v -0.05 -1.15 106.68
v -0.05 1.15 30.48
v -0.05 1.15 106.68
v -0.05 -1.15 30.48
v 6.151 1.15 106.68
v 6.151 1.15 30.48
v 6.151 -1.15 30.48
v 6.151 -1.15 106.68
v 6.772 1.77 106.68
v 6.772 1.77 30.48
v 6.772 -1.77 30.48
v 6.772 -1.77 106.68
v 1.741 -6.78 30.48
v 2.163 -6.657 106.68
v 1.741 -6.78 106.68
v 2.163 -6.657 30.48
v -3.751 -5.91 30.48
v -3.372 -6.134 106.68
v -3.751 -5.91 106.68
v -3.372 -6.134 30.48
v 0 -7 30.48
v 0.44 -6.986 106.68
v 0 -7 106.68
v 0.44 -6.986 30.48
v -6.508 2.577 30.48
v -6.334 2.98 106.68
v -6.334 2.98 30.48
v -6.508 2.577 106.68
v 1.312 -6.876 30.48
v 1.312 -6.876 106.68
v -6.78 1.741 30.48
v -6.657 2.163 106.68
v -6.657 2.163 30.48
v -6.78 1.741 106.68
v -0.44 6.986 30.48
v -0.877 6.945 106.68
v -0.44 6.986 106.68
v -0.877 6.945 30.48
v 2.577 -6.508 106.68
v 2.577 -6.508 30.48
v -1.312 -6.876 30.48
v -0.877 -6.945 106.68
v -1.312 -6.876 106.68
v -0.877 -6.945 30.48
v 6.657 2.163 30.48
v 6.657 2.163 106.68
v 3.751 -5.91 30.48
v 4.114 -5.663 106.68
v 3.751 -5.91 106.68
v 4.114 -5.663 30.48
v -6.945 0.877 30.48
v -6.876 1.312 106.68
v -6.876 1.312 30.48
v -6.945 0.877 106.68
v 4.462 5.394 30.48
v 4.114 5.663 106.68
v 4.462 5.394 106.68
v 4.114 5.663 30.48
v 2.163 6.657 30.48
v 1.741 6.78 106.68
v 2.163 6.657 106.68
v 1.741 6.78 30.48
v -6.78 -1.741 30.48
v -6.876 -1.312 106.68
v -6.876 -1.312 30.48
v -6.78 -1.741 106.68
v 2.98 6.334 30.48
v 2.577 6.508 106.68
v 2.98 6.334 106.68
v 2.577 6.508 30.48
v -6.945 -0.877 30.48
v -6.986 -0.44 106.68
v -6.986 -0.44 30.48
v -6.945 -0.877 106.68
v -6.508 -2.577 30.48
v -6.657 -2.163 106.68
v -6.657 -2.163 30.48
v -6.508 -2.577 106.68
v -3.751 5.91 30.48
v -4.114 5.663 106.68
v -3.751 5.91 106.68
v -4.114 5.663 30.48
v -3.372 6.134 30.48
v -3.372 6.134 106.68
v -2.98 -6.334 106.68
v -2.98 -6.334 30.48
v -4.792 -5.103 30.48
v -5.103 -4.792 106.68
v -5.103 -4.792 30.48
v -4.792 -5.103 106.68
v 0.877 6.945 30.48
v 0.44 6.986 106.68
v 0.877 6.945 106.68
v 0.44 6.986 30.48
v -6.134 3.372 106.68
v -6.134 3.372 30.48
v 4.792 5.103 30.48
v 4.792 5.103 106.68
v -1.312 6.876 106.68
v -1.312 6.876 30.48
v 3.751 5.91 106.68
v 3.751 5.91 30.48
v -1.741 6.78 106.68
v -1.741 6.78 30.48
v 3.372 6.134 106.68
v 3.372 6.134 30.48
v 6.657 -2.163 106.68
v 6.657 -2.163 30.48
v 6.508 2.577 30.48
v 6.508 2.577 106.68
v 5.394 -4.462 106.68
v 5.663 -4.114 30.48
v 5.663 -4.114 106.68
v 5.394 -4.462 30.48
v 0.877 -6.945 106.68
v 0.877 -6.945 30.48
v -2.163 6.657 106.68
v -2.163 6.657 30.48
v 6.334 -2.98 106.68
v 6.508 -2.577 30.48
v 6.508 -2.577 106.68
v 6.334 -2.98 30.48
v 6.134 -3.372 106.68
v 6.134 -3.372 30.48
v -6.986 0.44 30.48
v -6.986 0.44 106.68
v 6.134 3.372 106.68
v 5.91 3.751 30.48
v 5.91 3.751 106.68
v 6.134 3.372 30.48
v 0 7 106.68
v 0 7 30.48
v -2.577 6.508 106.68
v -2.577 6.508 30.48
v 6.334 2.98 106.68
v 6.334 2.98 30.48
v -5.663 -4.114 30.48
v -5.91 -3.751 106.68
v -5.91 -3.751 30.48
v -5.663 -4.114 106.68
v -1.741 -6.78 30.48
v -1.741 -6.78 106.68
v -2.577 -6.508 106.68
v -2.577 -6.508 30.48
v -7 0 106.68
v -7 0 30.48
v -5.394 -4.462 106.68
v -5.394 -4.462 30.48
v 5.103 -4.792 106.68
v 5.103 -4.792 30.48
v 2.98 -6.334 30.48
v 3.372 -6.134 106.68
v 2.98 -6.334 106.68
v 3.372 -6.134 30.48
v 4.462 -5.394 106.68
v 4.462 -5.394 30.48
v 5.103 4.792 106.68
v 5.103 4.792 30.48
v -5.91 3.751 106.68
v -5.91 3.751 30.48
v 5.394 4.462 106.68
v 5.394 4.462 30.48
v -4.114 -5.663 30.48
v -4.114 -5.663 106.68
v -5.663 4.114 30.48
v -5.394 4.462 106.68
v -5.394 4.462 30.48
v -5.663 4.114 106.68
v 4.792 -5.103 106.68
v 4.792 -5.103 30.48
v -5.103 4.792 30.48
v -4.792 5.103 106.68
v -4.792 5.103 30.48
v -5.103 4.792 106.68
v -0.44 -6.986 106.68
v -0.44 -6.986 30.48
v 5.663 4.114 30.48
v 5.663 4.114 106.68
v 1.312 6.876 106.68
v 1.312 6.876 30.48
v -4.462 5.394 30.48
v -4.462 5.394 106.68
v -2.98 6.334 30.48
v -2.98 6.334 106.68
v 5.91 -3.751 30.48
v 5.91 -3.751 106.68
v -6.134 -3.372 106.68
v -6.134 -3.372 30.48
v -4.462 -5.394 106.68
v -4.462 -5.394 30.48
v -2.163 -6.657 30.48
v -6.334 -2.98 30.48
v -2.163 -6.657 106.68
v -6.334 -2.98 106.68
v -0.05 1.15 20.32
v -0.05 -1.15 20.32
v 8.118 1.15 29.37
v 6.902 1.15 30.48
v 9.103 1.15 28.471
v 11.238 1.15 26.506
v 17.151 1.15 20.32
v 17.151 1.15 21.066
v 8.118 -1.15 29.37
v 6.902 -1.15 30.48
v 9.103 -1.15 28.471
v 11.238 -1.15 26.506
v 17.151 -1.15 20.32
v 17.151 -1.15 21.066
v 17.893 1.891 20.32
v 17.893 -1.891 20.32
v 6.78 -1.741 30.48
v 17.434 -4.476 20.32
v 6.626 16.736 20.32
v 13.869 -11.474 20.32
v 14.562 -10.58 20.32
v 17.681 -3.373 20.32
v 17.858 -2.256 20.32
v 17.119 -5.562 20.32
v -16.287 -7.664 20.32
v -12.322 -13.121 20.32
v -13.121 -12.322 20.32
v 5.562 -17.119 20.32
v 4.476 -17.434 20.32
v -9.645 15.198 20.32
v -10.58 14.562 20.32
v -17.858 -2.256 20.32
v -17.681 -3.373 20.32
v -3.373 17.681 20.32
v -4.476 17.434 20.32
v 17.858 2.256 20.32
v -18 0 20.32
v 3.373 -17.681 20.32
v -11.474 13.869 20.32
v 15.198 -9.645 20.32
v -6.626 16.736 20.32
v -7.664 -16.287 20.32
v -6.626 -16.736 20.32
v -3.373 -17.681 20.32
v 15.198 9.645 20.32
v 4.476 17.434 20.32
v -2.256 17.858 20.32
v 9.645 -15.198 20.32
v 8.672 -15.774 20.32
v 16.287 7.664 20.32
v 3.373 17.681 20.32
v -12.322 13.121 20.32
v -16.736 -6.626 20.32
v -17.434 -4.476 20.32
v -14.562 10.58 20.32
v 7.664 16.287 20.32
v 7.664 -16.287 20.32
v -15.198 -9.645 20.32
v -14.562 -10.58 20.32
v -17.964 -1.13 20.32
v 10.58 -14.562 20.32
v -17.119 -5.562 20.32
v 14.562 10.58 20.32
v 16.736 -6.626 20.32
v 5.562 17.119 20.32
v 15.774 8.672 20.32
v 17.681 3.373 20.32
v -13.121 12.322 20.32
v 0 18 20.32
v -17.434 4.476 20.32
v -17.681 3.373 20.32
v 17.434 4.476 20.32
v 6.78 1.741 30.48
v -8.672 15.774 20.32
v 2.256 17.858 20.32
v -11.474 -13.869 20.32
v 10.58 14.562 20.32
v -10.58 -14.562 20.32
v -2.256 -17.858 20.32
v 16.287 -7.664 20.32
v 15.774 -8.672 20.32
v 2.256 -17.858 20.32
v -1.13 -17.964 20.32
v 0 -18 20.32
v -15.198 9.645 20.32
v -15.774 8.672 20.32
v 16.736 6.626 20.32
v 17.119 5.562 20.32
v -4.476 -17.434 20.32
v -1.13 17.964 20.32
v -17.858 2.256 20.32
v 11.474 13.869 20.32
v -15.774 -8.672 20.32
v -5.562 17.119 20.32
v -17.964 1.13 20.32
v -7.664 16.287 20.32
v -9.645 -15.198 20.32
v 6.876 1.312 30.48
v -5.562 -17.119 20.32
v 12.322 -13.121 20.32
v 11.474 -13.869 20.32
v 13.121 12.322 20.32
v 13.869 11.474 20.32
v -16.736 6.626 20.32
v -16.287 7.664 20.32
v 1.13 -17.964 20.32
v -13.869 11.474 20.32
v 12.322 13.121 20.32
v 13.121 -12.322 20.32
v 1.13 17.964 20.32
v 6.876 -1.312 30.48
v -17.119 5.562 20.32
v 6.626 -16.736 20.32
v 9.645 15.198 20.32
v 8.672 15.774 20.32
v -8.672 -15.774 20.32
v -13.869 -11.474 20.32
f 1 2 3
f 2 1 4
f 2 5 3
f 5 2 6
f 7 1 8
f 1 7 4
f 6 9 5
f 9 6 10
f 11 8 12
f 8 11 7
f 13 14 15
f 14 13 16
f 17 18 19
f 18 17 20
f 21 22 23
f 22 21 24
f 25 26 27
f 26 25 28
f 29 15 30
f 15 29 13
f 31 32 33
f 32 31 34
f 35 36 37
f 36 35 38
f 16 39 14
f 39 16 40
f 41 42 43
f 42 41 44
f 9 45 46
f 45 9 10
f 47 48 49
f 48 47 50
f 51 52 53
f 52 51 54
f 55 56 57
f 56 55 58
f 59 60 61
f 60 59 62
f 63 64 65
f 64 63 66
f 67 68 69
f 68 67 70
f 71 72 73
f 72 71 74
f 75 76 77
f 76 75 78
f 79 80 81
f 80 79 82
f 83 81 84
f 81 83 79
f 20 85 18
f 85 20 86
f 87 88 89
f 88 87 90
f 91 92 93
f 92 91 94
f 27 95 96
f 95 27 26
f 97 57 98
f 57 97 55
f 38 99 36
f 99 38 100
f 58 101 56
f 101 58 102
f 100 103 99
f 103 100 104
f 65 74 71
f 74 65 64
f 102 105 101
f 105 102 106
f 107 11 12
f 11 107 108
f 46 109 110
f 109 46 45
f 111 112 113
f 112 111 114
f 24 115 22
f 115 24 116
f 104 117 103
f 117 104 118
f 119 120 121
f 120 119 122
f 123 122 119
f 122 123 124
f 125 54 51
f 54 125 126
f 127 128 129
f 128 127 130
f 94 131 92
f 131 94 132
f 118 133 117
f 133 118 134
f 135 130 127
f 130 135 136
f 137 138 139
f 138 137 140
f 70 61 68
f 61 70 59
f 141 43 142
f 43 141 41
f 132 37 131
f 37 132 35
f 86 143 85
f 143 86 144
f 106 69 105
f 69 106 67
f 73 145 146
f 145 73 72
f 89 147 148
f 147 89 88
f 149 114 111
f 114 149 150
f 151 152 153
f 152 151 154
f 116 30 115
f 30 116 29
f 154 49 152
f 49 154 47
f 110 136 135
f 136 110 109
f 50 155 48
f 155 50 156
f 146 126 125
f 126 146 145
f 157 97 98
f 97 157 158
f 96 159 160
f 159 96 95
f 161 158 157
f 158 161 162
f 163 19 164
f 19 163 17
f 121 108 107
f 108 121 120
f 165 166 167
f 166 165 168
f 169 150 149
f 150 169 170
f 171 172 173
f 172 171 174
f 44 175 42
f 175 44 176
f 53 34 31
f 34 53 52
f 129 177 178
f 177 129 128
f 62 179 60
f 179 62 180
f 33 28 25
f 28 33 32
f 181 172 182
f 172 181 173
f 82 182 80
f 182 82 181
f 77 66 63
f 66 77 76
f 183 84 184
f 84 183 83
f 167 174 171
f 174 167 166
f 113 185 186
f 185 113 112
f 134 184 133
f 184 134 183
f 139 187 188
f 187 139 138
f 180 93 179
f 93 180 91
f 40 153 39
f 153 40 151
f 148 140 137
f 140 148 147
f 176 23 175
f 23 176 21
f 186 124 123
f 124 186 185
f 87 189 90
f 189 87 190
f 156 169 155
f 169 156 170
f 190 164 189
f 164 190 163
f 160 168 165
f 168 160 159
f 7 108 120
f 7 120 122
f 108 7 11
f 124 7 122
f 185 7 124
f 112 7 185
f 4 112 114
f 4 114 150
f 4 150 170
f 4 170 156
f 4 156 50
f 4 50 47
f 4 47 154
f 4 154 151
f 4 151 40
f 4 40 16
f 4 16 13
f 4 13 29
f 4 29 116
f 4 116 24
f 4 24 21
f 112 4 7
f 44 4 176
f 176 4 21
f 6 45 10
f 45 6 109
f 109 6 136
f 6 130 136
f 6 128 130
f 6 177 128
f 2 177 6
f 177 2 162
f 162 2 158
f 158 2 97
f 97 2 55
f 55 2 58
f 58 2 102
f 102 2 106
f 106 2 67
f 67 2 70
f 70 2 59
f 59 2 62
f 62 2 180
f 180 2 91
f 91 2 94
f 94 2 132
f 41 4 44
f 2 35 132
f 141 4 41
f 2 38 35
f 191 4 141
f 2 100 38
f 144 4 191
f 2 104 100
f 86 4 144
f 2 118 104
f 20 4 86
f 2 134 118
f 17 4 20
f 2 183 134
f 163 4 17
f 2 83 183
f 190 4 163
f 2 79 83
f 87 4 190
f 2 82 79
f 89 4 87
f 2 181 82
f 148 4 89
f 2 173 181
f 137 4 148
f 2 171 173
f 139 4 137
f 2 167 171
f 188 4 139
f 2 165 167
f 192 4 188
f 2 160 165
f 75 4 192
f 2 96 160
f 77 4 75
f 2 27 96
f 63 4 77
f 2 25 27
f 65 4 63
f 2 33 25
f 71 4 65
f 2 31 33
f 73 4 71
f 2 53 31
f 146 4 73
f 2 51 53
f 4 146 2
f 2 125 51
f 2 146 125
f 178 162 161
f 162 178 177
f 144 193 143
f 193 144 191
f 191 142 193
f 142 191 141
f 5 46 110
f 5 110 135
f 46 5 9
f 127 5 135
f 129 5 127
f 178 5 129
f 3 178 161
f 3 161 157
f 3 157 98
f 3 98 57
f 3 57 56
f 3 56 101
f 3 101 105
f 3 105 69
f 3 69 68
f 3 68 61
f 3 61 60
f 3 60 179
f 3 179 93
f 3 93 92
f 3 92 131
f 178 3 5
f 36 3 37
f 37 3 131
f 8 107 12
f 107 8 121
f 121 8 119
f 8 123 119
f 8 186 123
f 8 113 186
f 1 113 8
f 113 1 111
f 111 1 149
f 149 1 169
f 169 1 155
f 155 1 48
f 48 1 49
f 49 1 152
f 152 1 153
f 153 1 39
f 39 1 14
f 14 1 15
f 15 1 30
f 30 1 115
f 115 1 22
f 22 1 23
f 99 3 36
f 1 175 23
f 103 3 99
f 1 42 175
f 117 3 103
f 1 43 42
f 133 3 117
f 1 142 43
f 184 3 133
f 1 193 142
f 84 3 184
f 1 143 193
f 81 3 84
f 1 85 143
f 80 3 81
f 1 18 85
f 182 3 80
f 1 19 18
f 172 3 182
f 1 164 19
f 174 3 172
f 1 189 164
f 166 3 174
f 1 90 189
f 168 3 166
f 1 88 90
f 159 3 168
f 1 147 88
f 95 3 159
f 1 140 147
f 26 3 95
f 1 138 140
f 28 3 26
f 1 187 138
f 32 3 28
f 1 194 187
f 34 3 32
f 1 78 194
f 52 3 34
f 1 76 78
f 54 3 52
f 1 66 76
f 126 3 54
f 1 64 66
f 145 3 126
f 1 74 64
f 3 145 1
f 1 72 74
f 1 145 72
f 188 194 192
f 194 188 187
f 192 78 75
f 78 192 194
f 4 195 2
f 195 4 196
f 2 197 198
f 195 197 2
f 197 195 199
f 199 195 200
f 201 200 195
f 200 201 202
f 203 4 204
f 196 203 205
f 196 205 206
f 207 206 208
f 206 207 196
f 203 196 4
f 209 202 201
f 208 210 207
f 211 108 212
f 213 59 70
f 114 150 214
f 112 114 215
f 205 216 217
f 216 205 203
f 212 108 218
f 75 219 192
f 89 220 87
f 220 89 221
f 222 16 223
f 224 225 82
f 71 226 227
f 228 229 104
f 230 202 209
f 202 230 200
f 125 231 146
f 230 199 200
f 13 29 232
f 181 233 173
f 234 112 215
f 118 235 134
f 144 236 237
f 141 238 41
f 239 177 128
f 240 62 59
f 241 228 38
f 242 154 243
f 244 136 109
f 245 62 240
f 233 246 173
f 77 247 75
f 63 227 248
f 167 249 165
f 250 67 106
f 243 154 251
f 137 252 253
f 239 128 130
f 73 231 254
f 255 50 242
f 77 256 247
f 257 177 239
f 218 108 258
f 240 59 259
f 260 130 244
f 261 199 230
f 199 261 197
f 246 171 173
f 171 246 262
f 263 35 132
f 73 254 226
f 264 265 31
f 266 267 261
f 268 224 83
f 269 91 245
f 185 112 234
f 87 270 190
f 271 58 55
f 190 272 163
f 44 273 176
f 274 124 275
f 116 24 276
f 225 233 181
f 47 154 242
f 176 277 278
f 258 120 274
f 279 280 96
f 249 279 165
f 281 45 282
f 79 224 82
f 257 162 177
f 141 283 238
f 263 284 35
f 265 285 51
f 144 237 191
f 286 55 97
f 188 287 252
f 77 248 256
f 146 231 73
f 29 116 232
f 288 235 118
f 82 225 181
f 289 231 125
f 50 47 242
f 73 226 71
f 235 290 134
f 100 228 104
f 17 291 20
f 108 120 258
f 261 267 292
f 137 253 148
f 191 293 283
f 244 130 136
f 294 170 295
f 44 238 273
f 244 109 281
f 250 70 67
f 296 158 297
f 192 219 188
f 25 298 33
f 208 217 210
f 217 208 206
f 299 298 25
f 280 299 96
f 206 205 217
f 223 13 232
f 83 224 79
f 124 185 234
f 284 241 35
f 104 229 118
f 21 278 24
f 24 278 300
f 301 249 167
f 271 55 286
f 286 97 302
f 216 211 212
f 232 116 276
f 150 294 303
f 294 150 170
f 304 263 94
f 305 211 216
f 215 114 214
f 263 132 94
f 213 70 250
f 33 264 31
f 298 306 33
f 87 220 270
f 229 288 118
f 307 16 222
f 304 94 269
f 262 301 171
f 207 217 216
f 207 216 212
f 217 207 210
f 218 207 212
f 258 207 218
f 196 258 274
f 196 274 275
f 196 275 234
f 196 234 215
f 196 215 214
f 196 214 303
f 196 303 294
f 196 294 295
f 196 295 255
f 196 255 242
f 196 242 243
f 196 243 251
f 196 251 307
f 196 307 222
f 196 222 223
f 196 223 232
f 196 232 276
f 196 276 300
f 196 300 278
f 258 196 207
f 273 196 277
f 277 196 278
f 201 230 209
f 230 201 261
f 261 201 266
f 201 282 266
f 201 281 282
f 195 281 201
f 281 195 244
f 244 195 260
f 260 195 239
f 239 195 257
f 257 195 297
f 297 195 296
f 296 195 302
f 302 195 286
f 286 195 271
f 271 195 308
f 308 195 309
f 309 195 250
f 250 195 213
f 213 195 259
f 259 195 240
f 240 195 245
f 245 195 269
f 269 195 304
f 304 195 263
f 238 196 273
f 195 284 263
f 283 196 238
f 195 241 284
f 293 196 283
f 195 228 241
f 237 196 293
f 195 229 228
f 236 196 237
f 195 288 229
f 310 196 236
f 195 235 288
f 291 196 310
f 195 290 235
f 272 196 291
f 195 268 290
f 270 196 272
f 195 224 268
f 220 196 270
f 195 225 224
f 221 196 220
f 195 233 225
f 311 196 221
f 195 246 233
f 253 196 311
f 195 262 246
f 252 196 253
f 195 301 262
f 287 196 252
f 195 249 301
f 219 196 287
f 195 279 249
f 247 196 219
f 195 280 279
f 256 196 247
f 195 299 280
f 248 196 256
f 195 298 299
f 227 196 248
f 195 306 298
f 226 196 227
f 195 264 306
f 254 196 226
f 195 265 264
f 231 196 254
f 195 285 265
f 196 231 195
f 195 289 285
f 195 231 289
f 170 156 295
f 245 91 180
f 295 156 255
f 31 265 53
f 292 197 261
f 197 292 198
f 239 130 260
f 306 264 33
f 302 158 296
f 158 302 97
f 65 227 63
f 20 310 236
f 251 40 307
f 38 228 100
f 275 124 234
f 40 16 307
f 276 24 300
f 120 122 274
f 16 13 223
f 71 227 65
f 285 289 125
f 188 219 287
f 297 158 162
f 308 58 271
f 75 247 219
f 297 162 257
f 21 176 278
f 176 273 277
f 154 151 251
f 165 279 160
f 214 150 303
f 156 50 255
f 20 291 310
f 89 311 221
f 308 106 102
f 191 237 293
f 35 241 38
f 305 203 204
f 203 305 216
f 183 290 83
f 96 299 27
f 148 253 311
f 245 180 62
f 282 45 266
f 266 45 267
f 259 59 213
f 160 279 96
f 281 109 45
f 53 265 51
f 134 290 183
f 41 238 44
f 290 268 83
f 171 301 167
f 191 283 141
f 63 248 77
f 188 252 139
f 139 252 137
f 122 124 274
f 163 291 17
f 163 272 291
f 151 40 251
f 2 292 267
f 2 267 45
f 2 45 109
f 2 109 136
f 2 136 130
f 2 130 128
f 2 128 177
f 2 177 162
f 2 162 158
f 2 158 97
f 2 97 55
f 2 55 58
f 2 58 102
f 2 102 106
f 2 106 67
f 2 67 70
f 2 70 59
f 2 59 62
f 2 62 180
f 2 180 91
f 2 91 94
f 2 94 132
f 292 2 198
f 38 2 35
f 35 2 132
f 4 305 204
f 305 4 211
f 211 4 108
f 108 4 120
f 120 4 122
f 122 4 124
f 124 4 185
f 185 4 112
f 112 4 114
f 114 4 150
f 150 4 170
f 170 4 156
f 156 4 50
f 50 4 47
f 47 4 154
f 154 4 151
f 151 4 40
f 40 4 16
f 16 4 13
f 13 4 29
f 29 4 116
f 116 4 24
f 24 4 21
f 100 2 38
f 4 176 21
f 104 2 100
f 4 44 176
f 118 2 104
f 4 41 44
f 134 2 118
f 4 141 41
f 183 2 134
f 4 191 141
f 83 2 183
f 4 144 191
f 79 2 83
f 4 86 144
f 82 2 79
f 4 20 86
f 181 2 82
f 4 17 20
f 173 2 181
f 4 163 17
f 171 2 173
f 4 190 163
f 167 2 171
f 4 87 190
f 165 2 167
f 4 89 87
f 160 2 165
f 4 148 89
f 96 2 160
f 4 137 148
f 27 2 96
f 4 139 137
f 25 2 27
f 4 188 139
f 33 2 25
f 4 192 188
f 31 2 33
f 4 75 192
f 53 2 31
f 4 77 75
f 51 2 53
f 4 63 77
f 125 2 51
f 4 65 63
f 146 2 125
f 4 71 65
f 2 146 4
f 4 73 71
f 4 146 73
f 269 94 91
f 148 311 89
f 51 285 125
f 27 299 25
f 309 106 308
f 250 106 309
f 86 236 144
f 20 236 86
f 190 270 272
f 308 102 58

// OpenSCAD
// this is a .scad file intended to be opened with OpenSCAD or a similar program.

/*
  Instructions:

  1. Install OpenSCAD from https://openscad.org/ if you don't have it already.
  2. Open this file in OpenSCAD.
  3. Adjust the measurements near the top of the file to match your sign dimensions if necessary. Remember to save.
  4. Render the model by pressing F6 or going to Design > Render.
  5. Export the rendered model as an STL file by pressing F7 or going to File > Export > Export as STL.
  6. Use the STL file with your preferred slicing software to prepare it for 3D printing.

  Note: The dowel is designed to fit into a sign with specific window and frame dimensions.
        Make sure to measure your sign accurately and adjust the parameters accordingly.
*/

/*

  Representation of the sign layout:

 ╭window_width
┏┷┯━┯━┓
┃ │ │ ┃
┡━┿━┷━┛
│ ╰inner_frame
╰outer_frame

  Representation of the dowel:

        ╭──────────These cones should fit flush back to back over an inner_frame without sticking out over the window holes.
_____╱││╲_____
     ╲││╱╰─────────This spot should line up with the edge of the window.
═════╗  ╔═════
     ║  ╟───inner_frame width
  ╷  ║  ║  ╷
  ╰──╢  ╟──┴─partial representation of window space

*/


// measurements in inches
in_window_width = 6;
in_outer_frame = 1.2;
in_inner_frame = .8;

// converting to mm
to_mm = 25.4;
window_width = in_window_width * to_mm;
outer_frame = in_outer_frame * to_mm;
inner_frame = in_inner_frame * to_mm;

// rest of these measurements in mm
radius = 7; // dowel radius. comes from the size of the OEM plastic stick-on retrofit. both raise the rings about 7mm.
big_radius = 18; // big radius for the cone. should be at least too big for a ring to slip over.
length = window_width/2; // length of the dowel. half the width of a window.
slice_gap = 2.3; // thickness of the metal the sign is made of. 0.3mm added to account for printer imperfections. adjust if your printer necessitates it.
chamfer_size = 1.2; // size of the chamfer on the slot. makes it easier to insert the dowel on to the sign.
resolution = 100; // higher number = smoother cylinder. too high = slow rendering. 100 is just fine



module Frame(windows) {
    full_width = windows*window_width + 2*outer_frame + ((windows-1)*inner_frame);

    rotate([0,-90,-90])
    difference(){
        cube([full_width ,50,.1]);

        for (i = [0:windows-1])
            translate([outer_frame + i * (window_width + inner_frame), -.1, -.5])
            cube([window_width, 52, 1]);
    }
}

module Slot(length, radius) { // creates a slot cutout
    translate([radius/2,0,0])
    cube([radius + 0.1, slice_gap, length + 1], center=true);

    // chamfers
    translate([radius, slice_gap/2, 0])
    rotate([0, 0, 45])
    cube([chamfer_size, chamfer_size, length + 1], center=true);

    translate([radius, -slice_gap/2, 0])
    rotate([0, 0, 45])
    cube([chamfer_size, chamfer_size, length + 1], center=true);
}

module Dowel(length, radius) { // creates a dowel with the slot cutout
    difference(){
        cylinder(h=length, r=radius, $fn=resolution, center=true);
        Slot(length, radius);
    }
}

module Cone(length) { // creates a cone for recentering the hanging number cards a little bit
    difference() {
        cylinder(r1=big_radius, r2=radius, h=length, $fn=resolution, center=true);
        Slot(length, big_radius);
    }
}



// creates a mockup of a horizontal slice of the sign with 3 windows.
// the * prefix makes it commented out. change it to # to make it partially transparent.
// only for helping visualize the dowel placement. remember to remove by changing back to * before rendering the stl for printing.
*Frame(3); // change the number to match the number of windows on your sign. doesnt really matter at all though.


translate([0, 0, length/2 + outer_frame])
Dowel(length, radius);


translate([0, 0, inner_frame/4+outer_frame-inner_frame/2])
Cone(inner_frame/2);
